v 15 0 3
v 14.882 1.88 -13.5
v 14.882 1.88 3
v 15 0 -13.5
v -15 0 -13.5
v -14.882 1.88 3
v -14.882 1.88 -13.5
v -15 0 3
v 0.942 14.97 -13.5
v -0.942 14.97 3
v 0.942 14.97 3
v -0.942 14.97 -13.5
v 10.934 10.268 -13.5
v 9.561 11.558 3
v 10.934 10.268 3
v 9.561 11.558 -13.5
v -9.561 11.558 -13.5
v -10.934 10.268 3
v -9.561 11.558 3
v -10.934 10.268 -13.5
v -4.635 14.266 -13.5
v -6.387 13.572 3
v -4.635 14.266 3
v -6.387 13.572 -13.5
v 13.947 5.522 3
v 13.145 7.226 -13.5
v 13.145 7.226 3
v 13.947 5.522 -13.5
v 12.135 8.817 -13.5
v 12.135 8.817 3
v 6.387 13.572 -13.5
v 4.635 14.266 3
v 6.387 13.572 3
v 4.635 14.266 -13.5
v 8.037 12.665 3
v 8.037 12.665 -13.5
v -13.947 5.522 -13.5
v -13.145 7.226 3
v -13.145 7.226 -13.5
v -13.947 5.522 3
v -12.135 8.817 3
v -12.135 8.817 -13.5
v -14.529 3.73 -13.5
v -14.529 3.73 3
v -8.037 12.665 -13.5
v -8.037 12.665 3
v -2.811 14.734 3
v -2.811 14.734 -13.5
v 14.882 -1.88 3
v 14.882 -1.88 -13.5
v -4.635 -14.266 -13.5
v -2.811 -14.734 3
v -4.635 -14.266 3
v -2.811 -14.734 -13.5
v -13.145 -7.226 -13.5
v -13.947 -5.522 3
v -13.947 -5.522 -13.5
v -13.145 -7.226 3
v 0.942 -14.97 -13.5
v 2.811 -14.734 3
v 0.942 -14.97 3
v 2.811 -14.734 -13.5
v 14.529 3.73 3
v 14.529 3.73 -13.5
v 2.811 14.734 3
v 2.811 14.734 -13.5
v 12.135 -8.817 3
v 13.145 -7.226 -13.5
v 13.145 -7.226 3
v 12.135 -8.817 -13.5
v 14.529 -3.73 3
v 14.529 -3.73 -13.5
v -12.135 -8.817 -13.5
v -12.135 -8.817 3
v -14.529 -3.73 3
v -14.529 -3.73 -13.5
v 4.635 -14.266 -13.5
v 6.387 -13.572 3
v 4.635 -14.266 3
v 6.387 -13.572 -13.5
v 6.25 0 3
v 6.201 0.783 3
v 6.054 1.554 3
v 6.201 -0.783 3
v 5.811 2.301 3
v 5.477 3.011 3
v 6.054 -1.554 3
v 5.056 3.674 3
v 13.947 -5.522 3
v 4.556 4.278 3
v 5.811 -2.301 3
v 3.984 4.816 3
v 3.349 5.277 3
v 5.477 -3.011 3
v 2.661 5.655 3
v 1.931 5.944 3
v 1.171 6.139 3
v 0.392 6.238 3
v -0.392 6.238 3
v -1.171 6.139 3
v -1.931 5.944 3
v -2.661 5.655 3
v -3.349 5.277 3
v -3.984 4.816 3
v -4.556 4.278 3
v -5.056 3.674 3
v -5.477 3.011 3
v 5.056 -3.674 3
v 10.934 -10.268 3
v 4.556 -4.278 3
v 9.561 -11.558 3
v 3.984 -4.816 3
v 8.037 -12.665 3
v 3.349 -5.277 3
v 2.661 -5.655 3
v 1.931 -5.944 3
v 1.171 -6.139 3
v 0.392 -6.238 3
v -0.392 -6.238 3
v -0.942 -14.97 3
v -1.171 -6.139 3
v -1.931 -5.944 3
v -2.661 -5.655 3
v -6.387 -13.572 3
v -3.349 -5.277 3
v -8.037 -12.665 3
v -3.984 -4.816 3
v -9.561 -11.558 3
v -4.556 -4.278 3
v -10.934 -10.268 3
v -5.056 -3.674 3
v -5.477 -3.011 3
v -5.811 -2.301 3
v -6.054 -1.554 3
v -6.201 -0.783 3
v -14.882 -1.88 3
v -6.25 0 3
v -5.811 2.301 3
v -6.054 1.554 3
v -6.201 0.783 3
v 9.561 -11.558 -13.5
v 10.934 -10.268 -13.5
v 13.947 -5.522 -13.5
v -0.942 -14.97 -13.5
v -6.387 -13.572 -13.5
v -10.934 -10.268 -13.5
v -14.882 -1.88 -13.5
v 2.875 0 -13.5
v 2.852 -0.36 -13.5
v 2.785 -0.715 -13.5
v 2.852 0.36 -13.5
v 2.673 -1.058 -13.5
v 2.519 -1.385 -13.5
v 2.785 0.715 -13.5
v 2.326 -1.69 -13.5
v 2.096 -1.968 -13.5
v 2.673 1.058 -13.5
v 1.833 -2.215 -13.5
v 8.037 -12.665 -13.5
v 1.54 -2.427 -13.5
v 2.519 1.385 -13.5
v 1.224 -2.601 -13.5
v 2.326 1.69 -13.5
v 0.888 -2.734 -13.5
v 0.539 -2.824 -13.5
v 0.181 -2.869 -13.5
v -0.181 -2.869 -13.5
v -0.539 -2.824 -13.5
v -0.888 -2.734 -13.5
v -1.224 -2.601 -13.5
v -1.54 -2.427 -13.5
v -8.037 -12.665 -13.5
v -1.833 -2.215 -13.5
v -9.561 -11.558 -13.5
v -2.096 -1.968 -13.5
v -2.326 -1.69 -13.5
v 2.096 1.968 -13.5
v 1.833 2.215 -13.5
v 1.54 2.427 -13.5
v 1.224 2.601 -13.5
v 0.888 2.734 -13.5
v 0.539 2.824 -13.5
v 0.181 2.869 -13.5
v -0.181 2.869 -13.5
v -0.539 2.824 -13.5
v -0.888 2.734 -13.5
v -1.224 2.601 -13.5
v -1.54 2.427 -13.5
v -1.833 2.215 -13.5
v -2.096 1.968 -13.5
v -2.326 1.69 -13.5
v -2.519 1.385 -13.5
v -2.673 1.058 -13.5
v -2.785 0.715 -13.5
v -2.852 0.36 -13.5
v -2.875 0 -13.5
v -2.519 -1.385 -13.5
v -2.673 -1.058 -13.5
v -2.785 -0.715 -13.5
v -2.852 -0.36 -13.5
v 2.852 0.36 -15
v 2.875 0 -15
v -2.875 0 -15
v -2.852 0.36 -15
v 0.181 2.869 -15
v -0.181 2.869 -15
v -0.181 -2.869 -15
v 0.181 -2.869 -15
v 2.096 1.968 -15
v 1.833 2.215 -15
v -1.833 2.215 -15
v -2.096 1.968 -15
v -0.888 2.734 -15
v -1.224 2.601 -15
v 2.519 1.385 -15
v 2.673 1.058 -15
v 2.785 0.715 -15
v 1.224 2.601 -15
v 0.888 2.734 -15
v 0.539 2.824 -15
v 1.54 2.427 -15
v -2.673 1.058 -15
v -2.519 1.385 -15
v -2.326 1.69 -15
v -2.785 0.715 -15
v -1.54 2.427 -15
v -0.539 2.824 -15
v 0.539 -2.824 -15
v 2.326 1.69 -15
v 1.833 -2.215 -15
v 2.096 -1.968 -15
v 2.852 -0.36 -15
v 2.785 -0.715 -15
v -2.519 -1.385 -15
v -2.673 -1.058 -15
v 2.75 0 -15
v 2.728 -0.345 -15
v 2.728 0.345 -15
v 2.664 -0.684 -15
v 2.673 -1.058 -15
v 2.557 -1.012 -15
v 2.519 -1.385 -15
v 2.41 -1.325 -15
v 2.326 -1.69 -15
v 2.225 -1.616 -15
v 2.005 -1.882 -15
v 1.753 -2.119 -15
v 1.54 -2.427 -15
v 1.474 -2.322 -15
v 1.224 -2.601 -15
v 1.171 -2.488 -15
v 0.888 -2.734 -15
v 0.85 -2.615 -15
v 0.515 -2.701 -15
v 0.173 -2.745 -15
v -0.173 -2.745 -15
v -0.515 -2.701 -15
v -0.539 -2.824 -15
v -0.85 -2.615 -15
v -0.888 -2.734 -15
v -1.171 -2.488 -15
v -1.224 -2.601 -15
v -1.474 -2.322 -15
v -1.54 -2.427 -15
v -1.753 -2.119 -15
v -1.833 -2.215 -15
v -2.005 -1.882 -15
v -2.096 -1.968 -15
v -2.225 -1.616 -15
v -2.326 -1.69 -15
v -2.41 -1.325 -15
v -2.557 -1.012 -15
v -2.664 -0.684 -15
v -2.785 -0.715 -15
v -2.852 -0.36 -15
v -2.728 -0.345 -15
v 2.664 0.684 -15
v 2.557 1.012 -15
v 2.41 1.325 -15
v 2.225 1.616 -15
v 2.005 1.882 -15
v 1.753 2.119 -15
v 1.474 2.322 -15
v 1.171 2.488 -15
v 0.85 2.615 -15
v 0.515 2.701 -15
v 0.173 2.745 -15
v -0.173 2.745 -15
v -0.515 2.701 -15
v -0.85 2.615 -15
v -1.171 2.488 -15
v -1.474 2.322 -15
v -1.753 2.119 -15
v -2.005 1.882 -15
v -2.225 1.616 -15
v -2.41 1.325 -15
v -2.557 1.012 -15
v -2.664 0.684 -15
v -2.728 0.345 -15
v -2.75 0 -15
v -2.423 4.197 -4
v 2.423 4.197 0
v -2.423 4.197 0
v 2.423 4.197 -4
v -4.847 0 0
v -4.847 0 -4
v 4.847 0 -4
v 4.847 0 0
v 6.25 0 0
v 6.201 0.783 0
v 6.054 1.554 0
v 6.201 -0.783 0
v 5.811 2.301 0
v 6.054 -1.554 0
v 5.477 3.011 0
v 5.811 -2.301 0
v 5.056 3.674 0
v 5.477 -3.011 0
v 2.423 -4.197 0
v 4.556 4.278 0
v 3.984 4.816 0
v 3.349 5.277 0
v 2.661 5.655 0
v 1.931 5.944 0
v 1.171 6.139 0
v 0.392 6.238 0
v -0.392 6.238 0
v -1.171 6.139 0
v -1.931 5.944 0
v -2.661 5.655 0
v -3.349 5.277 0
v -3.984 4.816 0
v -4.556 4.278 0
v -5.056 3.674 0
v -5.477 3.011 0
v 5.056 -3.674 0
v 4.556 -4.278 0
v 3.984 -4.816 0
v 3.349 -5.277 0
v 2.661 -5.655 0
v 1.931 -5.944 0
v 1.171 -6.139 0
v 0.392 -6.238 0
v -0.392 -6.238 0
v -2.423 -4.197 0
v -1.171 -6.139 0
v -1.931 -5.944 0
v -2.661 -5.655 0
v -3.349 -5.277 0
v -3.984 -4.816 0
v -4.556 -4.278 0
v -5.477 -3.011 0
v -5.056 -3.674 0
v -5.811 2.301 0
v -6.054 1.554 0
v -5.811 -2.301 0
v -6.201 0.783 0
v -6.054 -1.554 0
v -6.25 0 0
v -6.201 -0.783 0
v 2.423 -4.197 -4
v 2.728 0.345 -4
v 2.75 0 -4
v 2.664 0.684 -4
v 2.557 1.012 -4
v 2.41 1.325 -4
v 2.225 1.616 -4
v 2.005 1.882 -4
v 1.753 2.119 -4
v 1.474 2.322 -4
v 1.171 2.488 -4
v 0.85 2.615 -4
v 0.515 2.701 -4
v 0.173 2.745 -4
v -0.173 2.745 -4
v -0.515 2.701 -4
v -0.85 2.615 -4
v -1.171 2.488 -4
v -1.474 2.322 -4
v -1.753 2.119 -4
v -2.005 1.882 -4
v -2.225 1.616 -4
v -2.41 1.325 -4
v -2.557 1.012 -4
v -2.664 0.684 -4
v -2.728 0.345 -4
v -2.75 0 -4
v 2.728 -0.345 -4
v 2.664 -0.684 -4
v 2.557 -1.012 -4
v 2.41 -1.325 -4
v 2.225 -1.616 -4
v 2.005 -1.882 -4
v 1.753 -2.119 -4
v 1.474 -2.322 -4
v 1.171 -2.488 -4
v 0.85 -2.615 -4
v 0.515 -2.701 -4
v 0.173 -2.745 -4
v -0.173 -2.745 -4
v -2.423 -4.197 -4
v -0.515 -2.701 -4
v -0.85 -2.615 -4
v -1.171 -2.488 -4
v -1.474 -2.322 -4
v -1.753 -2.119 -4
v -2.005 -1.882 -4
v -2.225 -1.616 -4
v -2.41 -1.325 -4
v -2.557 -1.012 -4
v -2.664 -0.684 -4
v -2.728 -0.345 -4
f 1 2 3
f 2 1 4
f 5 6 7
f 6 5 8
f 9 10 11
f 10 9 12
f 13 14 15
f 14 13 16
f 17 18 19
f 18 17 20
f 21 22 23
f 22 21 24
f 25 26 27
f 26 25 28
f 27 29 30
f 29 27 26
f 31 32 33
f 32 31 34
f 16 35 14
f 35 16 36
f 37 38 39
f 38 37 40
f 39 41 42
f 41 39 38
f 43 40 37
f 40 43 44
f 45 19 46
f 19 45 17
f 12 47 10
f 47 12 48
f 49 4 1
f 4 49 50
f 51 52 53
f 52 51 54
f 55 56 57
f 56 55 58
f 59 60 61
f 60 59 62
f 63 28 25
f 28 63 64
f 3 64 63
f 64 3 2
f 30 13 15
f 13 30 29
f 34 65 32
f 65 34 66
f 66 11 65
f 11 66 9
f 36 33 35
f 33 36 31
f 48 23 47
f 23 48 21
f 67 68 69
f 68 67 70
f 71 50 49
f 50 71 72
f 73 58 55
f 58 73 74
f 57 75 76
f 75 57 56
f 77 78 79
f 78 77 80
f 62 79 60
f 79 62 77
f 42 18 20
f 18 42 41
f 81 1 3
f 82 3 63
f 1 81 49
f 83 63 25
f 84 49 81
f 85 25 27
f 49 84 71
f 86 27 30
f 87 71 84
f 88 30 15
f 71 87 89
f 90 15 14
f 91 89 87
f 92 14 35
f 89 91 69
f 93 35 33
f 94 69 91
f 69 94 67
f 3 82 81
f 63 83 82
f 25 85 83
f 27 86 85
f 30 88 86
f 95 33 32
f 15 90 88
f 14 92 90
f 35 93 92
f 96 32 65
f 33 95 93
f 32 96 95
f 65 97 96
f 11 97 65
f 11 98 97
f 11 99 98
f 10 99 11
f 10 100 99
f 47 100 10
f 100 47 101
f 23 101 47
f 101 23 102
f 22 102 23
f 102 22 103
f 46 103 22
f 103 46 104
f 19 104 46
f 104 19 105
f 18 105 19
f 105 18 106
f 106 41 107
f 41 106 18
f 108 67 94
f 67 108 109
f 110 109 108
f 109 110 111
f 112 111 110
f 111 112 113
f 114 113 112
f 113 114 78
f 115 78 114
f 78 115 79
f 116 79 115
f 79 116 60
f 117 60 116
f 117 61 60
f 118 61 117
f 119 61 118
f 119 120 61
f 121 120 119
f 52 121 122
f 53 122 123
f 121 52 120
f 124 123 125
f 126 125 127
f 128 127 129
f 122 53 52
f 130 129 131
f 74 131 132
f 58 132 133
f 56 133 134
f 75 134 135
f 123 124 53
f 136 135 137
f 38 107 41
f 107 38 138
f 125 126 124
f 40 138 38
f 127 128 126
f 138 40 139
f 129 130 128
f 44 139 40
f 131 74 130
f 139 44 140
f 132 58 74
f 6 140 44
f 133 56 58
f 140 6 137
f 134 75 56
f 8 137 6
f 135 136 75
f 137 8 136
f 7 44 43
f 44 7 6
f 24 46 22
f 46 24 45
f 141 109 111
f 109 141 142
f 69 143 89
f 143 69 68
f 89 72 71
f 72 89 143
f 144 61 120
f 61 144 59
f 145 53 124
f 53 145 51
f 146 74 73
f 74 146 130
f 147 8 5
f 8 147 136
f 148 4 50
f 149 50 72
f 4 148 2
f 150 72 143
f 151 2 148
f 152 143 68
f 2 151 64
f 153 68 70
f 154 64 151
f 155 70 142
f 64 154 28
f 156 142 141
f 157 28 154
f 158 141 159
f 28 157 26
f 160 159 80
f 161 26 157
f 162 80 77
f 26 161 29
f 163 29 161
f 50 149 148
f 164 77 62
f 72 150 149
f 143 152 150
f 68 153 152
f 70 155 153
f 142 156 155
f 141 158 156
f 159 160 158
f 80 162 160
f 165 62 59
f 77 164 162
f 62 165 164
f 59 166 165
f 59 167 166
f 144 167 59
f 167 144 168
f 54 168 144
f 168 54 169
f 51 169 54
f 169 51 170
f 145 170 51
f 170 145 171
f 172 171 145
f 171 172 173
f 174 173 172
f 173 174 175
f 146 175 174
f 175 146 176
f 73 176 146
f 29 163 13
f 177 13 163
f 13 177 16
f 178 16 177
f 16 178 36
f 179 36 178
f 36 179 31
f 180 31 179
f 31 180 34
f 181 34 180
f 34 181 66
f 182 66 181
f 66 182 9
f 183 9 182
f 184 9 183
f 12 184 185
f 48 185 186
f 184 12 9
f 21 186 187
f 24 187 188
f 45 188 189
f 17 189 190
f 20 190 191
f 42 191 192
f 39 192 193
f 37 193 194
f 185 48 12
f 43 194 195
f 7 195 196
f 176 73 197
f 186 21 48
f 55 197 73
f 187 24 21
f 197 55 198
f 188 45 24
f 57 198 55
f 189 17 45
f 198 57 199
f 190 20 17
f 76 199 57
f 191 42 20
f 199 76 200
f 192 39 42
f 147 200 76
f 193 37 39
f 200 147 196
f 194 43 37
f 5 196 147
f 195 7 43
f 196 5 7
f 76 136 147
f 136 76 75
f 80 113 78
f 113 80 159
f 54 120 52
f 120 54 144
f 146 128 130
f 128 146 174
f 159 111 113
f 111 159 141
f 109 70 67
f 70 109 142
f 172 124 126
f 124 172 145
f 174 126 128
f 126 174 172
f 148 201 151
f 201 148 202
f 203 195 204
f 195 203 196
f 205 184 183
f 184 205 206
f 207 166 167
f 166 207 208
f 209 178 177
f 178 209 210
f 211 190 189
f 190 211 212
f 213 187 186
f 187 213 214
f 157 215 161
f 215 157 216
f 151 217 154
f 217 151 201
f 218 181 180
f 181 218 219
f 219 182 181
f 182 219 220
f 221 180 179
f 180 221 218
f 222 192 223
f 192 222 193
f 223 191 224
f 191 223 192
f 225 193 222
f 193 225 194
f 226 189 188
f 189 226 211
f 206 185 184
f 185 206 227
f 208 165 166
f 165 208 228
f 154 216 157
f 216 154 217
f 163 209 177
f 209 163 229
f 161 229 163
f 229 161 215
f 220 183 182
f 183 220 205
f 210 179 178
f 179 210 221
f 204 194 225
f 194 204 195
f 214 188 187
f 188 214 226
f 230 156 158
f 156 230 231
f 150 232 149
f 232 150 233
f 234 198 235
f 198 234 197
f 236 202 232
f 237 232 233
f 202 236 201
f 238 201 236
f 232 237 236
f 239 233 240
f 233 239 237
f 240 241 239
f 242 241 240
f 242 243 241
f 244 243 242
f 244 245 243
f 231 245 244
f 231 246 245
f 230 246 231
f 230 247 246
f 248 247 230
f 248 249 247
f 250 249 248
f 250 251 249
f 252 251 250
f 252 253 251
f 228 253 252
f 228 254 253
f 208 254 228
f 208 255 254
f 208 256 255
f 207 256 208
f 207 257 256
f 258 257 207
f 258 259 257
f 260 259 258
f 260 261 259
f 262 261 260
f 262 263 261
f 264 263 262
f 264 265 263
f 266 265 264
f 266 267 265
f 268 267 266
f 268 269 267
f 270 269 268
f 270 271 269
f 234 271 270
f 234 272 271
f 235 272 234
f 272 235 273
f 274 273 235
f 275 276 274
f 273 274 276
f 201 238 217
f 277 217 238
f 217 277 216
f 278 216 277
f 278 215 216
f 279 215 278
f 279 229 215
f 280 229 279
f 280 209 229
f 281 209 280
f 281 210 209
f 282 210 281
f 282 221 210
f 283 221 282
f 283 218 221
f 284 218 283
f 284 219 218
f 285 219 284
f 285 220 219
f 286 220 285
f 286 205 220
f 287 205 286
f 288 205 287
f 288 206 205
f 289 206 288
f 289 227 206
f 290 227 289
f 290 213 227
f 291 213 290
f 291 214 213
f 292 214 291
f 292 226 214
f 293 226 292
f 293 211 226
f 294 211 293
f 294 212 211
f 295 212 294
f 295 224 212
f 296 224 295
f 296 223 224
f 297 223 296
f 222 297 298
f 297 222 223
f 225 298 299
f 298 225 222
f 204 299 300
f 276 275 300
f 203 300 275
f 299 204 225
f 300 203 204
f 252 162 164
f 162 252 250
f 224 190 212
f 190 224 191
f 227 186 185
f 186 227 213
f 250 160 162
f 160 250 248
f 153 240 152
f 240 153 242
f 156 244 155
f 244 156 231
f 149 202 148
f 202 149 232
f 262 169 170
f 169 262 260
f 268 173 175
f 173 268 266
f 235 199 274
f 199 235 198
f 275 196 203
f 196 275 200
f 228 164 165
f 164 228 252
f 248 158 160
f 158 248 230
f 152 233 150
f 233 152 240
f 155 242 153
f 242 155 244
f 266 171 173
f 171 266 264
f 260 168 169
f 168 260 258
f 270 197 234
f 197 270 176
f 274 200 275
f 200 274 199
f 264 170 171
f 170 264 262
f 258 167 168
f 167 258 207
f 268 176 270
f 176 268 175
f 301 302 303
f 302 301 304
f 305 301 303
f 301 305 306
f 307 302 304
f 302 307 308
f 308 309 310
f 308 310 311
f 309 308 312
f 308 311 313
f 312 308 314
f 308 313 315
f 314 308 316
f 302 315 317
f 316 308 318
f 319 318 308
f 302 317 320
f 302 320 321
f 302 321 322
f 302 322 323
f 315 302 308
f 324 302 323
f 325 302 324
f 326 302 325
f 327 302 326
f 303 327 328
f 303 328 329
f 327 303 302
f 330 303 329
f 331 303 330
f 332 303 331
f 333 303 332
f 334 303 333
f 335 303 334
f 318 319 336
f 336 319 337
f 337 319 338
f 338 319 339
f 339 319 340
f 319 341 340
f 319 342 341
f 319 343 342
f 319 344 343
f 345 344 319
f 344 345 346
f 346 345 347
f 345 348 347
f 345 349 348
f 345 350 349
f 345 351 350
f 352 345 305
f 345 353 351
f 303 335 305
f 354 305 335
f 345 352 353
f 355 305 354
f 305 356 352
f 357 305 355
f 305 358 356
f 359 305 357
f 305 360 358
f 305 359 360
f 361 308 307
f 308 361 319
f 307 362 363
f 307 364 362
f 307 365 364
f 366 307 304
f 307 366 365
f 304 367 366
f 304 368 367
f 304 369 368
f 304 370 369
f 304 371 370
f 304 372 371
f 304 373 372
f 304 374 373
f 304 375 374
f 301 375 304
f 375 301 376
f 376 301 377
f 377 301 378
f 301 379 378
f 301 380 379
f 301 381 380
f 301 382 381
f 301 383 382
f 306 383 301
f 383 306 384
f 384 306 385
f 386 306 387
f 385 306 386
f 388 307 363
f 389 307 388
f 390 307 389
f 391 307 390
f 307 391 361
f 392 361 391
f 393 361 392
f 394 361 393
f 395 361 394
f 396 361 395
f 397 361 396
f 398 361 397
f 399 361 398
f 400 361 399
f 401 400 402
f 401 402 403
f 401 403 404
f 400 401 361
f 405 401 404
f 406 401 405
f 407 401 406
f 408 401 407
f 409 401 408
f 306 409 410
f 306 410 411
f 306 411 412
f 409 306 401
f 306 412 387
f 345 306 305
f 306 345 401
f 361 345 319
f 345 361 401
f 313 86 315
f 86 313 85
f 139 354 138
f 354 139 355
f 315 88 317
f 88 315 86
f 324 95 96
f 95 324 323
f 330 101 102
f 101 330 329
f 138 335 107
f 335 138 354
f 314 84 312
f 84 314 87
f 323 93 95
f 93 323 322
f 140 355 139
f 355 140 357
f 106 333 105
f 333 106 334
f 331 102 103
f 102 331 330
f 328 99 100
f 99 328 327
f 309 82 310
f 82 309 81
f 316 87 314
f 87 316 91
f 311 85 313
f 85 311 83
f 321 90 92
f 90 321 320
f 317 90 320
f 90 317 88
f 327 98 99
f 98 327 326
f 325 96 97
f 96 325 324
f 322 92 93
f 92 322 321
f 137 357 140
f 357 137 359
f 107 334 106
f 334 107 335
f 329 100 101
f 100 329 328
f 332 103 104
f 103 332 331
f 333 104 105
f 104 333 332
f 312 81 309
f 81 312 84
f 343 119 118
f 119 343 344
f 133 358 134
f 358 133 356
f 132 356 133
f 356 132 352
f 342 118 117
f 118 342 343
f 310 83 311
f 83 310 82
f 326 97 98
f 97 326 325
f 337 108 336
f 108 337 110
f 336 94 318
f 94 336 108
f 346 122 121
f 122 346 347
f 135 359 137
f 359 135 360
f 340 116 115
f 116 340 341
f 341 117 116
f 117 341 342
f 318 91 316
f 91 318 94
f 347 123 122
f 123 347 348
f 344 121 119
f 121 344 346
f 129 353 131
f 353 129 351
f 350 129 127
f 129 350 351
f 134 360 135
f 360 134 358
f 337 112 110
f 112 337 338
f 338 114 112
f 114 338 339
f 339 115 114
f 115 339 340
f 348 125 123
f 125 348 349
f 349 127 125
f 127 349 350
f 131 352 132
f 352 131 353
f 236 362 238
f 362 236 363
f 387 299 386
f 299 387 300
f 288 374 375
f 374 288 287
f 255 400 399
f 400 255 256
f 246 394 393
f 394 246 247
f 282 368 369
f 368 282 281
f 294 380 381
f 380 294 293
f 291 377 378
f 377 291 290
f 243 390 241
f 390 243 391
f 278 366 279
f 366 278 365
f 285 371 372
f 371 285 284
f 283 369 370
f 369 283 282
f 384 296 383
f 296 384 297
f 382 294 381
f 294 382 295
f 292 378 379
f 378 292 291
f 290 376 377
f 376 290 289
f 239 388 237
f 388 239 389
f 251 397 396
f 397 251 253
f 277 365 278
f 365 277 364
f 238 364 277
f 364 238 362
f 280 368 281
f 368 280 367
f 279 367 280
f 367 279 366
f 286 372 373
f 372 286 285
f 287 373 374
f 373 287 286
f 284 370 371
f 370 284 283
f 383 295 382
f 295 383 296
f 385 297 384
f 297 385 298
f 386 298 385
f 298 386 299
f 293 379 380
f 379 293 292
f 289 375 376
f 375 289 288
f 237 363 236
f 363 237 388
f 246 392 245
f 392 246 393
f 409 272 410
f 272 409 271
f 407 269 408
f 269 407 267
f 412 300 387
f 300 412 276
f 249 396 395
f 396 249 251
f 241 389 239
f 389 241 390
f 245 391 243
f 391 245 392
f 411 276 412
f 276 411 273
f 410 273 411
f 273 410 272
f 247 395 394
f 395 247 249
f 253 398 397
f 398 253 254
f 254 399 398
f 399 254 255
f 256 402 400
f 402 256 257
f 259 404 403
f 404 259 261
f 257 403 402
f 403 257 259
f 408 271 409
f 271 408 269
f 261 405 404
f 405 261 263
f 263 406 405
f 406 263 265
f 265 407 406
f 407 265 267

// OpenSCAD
$fn = 50;


difference() {
	union() {
		translate(v = [0, 0, -13.5000000000]) {
			cylinder(h = 16.5000000000, r = 15.0000000000);
		}
		#translate(v = [0, 0, -15.0000000000]) {
			cylinder(h = 15, r = 2.8750000000);
		}
	}
	union() {
		translate(v = [0, 0, 0]) {
			rotate(a = [0, 0, 0]) {
				difference() {
					union() {
						translate(v = [0, 0, -4]) {
							linear_extrude(height = 4) {
								polygon(points = [[4.8468000000, 0.0000000000], [2.4234000000, 4.1974519271], [-2.4234000000, 4.1974519271], [-4.8468000000, 0.0000000000], [-2.4234000000, -4.1974519271], [2.4234000000, -4.1974519271]]);
							}
						}
					}
					union();
				}
			}
		}
		#cylinder(h = 3, r = 6.2500000000);
		#translate(v = [0, 0, -100.0000000000]) {
			cylinder(h = 200, r = 2.7500000000);
		}
	}
}
